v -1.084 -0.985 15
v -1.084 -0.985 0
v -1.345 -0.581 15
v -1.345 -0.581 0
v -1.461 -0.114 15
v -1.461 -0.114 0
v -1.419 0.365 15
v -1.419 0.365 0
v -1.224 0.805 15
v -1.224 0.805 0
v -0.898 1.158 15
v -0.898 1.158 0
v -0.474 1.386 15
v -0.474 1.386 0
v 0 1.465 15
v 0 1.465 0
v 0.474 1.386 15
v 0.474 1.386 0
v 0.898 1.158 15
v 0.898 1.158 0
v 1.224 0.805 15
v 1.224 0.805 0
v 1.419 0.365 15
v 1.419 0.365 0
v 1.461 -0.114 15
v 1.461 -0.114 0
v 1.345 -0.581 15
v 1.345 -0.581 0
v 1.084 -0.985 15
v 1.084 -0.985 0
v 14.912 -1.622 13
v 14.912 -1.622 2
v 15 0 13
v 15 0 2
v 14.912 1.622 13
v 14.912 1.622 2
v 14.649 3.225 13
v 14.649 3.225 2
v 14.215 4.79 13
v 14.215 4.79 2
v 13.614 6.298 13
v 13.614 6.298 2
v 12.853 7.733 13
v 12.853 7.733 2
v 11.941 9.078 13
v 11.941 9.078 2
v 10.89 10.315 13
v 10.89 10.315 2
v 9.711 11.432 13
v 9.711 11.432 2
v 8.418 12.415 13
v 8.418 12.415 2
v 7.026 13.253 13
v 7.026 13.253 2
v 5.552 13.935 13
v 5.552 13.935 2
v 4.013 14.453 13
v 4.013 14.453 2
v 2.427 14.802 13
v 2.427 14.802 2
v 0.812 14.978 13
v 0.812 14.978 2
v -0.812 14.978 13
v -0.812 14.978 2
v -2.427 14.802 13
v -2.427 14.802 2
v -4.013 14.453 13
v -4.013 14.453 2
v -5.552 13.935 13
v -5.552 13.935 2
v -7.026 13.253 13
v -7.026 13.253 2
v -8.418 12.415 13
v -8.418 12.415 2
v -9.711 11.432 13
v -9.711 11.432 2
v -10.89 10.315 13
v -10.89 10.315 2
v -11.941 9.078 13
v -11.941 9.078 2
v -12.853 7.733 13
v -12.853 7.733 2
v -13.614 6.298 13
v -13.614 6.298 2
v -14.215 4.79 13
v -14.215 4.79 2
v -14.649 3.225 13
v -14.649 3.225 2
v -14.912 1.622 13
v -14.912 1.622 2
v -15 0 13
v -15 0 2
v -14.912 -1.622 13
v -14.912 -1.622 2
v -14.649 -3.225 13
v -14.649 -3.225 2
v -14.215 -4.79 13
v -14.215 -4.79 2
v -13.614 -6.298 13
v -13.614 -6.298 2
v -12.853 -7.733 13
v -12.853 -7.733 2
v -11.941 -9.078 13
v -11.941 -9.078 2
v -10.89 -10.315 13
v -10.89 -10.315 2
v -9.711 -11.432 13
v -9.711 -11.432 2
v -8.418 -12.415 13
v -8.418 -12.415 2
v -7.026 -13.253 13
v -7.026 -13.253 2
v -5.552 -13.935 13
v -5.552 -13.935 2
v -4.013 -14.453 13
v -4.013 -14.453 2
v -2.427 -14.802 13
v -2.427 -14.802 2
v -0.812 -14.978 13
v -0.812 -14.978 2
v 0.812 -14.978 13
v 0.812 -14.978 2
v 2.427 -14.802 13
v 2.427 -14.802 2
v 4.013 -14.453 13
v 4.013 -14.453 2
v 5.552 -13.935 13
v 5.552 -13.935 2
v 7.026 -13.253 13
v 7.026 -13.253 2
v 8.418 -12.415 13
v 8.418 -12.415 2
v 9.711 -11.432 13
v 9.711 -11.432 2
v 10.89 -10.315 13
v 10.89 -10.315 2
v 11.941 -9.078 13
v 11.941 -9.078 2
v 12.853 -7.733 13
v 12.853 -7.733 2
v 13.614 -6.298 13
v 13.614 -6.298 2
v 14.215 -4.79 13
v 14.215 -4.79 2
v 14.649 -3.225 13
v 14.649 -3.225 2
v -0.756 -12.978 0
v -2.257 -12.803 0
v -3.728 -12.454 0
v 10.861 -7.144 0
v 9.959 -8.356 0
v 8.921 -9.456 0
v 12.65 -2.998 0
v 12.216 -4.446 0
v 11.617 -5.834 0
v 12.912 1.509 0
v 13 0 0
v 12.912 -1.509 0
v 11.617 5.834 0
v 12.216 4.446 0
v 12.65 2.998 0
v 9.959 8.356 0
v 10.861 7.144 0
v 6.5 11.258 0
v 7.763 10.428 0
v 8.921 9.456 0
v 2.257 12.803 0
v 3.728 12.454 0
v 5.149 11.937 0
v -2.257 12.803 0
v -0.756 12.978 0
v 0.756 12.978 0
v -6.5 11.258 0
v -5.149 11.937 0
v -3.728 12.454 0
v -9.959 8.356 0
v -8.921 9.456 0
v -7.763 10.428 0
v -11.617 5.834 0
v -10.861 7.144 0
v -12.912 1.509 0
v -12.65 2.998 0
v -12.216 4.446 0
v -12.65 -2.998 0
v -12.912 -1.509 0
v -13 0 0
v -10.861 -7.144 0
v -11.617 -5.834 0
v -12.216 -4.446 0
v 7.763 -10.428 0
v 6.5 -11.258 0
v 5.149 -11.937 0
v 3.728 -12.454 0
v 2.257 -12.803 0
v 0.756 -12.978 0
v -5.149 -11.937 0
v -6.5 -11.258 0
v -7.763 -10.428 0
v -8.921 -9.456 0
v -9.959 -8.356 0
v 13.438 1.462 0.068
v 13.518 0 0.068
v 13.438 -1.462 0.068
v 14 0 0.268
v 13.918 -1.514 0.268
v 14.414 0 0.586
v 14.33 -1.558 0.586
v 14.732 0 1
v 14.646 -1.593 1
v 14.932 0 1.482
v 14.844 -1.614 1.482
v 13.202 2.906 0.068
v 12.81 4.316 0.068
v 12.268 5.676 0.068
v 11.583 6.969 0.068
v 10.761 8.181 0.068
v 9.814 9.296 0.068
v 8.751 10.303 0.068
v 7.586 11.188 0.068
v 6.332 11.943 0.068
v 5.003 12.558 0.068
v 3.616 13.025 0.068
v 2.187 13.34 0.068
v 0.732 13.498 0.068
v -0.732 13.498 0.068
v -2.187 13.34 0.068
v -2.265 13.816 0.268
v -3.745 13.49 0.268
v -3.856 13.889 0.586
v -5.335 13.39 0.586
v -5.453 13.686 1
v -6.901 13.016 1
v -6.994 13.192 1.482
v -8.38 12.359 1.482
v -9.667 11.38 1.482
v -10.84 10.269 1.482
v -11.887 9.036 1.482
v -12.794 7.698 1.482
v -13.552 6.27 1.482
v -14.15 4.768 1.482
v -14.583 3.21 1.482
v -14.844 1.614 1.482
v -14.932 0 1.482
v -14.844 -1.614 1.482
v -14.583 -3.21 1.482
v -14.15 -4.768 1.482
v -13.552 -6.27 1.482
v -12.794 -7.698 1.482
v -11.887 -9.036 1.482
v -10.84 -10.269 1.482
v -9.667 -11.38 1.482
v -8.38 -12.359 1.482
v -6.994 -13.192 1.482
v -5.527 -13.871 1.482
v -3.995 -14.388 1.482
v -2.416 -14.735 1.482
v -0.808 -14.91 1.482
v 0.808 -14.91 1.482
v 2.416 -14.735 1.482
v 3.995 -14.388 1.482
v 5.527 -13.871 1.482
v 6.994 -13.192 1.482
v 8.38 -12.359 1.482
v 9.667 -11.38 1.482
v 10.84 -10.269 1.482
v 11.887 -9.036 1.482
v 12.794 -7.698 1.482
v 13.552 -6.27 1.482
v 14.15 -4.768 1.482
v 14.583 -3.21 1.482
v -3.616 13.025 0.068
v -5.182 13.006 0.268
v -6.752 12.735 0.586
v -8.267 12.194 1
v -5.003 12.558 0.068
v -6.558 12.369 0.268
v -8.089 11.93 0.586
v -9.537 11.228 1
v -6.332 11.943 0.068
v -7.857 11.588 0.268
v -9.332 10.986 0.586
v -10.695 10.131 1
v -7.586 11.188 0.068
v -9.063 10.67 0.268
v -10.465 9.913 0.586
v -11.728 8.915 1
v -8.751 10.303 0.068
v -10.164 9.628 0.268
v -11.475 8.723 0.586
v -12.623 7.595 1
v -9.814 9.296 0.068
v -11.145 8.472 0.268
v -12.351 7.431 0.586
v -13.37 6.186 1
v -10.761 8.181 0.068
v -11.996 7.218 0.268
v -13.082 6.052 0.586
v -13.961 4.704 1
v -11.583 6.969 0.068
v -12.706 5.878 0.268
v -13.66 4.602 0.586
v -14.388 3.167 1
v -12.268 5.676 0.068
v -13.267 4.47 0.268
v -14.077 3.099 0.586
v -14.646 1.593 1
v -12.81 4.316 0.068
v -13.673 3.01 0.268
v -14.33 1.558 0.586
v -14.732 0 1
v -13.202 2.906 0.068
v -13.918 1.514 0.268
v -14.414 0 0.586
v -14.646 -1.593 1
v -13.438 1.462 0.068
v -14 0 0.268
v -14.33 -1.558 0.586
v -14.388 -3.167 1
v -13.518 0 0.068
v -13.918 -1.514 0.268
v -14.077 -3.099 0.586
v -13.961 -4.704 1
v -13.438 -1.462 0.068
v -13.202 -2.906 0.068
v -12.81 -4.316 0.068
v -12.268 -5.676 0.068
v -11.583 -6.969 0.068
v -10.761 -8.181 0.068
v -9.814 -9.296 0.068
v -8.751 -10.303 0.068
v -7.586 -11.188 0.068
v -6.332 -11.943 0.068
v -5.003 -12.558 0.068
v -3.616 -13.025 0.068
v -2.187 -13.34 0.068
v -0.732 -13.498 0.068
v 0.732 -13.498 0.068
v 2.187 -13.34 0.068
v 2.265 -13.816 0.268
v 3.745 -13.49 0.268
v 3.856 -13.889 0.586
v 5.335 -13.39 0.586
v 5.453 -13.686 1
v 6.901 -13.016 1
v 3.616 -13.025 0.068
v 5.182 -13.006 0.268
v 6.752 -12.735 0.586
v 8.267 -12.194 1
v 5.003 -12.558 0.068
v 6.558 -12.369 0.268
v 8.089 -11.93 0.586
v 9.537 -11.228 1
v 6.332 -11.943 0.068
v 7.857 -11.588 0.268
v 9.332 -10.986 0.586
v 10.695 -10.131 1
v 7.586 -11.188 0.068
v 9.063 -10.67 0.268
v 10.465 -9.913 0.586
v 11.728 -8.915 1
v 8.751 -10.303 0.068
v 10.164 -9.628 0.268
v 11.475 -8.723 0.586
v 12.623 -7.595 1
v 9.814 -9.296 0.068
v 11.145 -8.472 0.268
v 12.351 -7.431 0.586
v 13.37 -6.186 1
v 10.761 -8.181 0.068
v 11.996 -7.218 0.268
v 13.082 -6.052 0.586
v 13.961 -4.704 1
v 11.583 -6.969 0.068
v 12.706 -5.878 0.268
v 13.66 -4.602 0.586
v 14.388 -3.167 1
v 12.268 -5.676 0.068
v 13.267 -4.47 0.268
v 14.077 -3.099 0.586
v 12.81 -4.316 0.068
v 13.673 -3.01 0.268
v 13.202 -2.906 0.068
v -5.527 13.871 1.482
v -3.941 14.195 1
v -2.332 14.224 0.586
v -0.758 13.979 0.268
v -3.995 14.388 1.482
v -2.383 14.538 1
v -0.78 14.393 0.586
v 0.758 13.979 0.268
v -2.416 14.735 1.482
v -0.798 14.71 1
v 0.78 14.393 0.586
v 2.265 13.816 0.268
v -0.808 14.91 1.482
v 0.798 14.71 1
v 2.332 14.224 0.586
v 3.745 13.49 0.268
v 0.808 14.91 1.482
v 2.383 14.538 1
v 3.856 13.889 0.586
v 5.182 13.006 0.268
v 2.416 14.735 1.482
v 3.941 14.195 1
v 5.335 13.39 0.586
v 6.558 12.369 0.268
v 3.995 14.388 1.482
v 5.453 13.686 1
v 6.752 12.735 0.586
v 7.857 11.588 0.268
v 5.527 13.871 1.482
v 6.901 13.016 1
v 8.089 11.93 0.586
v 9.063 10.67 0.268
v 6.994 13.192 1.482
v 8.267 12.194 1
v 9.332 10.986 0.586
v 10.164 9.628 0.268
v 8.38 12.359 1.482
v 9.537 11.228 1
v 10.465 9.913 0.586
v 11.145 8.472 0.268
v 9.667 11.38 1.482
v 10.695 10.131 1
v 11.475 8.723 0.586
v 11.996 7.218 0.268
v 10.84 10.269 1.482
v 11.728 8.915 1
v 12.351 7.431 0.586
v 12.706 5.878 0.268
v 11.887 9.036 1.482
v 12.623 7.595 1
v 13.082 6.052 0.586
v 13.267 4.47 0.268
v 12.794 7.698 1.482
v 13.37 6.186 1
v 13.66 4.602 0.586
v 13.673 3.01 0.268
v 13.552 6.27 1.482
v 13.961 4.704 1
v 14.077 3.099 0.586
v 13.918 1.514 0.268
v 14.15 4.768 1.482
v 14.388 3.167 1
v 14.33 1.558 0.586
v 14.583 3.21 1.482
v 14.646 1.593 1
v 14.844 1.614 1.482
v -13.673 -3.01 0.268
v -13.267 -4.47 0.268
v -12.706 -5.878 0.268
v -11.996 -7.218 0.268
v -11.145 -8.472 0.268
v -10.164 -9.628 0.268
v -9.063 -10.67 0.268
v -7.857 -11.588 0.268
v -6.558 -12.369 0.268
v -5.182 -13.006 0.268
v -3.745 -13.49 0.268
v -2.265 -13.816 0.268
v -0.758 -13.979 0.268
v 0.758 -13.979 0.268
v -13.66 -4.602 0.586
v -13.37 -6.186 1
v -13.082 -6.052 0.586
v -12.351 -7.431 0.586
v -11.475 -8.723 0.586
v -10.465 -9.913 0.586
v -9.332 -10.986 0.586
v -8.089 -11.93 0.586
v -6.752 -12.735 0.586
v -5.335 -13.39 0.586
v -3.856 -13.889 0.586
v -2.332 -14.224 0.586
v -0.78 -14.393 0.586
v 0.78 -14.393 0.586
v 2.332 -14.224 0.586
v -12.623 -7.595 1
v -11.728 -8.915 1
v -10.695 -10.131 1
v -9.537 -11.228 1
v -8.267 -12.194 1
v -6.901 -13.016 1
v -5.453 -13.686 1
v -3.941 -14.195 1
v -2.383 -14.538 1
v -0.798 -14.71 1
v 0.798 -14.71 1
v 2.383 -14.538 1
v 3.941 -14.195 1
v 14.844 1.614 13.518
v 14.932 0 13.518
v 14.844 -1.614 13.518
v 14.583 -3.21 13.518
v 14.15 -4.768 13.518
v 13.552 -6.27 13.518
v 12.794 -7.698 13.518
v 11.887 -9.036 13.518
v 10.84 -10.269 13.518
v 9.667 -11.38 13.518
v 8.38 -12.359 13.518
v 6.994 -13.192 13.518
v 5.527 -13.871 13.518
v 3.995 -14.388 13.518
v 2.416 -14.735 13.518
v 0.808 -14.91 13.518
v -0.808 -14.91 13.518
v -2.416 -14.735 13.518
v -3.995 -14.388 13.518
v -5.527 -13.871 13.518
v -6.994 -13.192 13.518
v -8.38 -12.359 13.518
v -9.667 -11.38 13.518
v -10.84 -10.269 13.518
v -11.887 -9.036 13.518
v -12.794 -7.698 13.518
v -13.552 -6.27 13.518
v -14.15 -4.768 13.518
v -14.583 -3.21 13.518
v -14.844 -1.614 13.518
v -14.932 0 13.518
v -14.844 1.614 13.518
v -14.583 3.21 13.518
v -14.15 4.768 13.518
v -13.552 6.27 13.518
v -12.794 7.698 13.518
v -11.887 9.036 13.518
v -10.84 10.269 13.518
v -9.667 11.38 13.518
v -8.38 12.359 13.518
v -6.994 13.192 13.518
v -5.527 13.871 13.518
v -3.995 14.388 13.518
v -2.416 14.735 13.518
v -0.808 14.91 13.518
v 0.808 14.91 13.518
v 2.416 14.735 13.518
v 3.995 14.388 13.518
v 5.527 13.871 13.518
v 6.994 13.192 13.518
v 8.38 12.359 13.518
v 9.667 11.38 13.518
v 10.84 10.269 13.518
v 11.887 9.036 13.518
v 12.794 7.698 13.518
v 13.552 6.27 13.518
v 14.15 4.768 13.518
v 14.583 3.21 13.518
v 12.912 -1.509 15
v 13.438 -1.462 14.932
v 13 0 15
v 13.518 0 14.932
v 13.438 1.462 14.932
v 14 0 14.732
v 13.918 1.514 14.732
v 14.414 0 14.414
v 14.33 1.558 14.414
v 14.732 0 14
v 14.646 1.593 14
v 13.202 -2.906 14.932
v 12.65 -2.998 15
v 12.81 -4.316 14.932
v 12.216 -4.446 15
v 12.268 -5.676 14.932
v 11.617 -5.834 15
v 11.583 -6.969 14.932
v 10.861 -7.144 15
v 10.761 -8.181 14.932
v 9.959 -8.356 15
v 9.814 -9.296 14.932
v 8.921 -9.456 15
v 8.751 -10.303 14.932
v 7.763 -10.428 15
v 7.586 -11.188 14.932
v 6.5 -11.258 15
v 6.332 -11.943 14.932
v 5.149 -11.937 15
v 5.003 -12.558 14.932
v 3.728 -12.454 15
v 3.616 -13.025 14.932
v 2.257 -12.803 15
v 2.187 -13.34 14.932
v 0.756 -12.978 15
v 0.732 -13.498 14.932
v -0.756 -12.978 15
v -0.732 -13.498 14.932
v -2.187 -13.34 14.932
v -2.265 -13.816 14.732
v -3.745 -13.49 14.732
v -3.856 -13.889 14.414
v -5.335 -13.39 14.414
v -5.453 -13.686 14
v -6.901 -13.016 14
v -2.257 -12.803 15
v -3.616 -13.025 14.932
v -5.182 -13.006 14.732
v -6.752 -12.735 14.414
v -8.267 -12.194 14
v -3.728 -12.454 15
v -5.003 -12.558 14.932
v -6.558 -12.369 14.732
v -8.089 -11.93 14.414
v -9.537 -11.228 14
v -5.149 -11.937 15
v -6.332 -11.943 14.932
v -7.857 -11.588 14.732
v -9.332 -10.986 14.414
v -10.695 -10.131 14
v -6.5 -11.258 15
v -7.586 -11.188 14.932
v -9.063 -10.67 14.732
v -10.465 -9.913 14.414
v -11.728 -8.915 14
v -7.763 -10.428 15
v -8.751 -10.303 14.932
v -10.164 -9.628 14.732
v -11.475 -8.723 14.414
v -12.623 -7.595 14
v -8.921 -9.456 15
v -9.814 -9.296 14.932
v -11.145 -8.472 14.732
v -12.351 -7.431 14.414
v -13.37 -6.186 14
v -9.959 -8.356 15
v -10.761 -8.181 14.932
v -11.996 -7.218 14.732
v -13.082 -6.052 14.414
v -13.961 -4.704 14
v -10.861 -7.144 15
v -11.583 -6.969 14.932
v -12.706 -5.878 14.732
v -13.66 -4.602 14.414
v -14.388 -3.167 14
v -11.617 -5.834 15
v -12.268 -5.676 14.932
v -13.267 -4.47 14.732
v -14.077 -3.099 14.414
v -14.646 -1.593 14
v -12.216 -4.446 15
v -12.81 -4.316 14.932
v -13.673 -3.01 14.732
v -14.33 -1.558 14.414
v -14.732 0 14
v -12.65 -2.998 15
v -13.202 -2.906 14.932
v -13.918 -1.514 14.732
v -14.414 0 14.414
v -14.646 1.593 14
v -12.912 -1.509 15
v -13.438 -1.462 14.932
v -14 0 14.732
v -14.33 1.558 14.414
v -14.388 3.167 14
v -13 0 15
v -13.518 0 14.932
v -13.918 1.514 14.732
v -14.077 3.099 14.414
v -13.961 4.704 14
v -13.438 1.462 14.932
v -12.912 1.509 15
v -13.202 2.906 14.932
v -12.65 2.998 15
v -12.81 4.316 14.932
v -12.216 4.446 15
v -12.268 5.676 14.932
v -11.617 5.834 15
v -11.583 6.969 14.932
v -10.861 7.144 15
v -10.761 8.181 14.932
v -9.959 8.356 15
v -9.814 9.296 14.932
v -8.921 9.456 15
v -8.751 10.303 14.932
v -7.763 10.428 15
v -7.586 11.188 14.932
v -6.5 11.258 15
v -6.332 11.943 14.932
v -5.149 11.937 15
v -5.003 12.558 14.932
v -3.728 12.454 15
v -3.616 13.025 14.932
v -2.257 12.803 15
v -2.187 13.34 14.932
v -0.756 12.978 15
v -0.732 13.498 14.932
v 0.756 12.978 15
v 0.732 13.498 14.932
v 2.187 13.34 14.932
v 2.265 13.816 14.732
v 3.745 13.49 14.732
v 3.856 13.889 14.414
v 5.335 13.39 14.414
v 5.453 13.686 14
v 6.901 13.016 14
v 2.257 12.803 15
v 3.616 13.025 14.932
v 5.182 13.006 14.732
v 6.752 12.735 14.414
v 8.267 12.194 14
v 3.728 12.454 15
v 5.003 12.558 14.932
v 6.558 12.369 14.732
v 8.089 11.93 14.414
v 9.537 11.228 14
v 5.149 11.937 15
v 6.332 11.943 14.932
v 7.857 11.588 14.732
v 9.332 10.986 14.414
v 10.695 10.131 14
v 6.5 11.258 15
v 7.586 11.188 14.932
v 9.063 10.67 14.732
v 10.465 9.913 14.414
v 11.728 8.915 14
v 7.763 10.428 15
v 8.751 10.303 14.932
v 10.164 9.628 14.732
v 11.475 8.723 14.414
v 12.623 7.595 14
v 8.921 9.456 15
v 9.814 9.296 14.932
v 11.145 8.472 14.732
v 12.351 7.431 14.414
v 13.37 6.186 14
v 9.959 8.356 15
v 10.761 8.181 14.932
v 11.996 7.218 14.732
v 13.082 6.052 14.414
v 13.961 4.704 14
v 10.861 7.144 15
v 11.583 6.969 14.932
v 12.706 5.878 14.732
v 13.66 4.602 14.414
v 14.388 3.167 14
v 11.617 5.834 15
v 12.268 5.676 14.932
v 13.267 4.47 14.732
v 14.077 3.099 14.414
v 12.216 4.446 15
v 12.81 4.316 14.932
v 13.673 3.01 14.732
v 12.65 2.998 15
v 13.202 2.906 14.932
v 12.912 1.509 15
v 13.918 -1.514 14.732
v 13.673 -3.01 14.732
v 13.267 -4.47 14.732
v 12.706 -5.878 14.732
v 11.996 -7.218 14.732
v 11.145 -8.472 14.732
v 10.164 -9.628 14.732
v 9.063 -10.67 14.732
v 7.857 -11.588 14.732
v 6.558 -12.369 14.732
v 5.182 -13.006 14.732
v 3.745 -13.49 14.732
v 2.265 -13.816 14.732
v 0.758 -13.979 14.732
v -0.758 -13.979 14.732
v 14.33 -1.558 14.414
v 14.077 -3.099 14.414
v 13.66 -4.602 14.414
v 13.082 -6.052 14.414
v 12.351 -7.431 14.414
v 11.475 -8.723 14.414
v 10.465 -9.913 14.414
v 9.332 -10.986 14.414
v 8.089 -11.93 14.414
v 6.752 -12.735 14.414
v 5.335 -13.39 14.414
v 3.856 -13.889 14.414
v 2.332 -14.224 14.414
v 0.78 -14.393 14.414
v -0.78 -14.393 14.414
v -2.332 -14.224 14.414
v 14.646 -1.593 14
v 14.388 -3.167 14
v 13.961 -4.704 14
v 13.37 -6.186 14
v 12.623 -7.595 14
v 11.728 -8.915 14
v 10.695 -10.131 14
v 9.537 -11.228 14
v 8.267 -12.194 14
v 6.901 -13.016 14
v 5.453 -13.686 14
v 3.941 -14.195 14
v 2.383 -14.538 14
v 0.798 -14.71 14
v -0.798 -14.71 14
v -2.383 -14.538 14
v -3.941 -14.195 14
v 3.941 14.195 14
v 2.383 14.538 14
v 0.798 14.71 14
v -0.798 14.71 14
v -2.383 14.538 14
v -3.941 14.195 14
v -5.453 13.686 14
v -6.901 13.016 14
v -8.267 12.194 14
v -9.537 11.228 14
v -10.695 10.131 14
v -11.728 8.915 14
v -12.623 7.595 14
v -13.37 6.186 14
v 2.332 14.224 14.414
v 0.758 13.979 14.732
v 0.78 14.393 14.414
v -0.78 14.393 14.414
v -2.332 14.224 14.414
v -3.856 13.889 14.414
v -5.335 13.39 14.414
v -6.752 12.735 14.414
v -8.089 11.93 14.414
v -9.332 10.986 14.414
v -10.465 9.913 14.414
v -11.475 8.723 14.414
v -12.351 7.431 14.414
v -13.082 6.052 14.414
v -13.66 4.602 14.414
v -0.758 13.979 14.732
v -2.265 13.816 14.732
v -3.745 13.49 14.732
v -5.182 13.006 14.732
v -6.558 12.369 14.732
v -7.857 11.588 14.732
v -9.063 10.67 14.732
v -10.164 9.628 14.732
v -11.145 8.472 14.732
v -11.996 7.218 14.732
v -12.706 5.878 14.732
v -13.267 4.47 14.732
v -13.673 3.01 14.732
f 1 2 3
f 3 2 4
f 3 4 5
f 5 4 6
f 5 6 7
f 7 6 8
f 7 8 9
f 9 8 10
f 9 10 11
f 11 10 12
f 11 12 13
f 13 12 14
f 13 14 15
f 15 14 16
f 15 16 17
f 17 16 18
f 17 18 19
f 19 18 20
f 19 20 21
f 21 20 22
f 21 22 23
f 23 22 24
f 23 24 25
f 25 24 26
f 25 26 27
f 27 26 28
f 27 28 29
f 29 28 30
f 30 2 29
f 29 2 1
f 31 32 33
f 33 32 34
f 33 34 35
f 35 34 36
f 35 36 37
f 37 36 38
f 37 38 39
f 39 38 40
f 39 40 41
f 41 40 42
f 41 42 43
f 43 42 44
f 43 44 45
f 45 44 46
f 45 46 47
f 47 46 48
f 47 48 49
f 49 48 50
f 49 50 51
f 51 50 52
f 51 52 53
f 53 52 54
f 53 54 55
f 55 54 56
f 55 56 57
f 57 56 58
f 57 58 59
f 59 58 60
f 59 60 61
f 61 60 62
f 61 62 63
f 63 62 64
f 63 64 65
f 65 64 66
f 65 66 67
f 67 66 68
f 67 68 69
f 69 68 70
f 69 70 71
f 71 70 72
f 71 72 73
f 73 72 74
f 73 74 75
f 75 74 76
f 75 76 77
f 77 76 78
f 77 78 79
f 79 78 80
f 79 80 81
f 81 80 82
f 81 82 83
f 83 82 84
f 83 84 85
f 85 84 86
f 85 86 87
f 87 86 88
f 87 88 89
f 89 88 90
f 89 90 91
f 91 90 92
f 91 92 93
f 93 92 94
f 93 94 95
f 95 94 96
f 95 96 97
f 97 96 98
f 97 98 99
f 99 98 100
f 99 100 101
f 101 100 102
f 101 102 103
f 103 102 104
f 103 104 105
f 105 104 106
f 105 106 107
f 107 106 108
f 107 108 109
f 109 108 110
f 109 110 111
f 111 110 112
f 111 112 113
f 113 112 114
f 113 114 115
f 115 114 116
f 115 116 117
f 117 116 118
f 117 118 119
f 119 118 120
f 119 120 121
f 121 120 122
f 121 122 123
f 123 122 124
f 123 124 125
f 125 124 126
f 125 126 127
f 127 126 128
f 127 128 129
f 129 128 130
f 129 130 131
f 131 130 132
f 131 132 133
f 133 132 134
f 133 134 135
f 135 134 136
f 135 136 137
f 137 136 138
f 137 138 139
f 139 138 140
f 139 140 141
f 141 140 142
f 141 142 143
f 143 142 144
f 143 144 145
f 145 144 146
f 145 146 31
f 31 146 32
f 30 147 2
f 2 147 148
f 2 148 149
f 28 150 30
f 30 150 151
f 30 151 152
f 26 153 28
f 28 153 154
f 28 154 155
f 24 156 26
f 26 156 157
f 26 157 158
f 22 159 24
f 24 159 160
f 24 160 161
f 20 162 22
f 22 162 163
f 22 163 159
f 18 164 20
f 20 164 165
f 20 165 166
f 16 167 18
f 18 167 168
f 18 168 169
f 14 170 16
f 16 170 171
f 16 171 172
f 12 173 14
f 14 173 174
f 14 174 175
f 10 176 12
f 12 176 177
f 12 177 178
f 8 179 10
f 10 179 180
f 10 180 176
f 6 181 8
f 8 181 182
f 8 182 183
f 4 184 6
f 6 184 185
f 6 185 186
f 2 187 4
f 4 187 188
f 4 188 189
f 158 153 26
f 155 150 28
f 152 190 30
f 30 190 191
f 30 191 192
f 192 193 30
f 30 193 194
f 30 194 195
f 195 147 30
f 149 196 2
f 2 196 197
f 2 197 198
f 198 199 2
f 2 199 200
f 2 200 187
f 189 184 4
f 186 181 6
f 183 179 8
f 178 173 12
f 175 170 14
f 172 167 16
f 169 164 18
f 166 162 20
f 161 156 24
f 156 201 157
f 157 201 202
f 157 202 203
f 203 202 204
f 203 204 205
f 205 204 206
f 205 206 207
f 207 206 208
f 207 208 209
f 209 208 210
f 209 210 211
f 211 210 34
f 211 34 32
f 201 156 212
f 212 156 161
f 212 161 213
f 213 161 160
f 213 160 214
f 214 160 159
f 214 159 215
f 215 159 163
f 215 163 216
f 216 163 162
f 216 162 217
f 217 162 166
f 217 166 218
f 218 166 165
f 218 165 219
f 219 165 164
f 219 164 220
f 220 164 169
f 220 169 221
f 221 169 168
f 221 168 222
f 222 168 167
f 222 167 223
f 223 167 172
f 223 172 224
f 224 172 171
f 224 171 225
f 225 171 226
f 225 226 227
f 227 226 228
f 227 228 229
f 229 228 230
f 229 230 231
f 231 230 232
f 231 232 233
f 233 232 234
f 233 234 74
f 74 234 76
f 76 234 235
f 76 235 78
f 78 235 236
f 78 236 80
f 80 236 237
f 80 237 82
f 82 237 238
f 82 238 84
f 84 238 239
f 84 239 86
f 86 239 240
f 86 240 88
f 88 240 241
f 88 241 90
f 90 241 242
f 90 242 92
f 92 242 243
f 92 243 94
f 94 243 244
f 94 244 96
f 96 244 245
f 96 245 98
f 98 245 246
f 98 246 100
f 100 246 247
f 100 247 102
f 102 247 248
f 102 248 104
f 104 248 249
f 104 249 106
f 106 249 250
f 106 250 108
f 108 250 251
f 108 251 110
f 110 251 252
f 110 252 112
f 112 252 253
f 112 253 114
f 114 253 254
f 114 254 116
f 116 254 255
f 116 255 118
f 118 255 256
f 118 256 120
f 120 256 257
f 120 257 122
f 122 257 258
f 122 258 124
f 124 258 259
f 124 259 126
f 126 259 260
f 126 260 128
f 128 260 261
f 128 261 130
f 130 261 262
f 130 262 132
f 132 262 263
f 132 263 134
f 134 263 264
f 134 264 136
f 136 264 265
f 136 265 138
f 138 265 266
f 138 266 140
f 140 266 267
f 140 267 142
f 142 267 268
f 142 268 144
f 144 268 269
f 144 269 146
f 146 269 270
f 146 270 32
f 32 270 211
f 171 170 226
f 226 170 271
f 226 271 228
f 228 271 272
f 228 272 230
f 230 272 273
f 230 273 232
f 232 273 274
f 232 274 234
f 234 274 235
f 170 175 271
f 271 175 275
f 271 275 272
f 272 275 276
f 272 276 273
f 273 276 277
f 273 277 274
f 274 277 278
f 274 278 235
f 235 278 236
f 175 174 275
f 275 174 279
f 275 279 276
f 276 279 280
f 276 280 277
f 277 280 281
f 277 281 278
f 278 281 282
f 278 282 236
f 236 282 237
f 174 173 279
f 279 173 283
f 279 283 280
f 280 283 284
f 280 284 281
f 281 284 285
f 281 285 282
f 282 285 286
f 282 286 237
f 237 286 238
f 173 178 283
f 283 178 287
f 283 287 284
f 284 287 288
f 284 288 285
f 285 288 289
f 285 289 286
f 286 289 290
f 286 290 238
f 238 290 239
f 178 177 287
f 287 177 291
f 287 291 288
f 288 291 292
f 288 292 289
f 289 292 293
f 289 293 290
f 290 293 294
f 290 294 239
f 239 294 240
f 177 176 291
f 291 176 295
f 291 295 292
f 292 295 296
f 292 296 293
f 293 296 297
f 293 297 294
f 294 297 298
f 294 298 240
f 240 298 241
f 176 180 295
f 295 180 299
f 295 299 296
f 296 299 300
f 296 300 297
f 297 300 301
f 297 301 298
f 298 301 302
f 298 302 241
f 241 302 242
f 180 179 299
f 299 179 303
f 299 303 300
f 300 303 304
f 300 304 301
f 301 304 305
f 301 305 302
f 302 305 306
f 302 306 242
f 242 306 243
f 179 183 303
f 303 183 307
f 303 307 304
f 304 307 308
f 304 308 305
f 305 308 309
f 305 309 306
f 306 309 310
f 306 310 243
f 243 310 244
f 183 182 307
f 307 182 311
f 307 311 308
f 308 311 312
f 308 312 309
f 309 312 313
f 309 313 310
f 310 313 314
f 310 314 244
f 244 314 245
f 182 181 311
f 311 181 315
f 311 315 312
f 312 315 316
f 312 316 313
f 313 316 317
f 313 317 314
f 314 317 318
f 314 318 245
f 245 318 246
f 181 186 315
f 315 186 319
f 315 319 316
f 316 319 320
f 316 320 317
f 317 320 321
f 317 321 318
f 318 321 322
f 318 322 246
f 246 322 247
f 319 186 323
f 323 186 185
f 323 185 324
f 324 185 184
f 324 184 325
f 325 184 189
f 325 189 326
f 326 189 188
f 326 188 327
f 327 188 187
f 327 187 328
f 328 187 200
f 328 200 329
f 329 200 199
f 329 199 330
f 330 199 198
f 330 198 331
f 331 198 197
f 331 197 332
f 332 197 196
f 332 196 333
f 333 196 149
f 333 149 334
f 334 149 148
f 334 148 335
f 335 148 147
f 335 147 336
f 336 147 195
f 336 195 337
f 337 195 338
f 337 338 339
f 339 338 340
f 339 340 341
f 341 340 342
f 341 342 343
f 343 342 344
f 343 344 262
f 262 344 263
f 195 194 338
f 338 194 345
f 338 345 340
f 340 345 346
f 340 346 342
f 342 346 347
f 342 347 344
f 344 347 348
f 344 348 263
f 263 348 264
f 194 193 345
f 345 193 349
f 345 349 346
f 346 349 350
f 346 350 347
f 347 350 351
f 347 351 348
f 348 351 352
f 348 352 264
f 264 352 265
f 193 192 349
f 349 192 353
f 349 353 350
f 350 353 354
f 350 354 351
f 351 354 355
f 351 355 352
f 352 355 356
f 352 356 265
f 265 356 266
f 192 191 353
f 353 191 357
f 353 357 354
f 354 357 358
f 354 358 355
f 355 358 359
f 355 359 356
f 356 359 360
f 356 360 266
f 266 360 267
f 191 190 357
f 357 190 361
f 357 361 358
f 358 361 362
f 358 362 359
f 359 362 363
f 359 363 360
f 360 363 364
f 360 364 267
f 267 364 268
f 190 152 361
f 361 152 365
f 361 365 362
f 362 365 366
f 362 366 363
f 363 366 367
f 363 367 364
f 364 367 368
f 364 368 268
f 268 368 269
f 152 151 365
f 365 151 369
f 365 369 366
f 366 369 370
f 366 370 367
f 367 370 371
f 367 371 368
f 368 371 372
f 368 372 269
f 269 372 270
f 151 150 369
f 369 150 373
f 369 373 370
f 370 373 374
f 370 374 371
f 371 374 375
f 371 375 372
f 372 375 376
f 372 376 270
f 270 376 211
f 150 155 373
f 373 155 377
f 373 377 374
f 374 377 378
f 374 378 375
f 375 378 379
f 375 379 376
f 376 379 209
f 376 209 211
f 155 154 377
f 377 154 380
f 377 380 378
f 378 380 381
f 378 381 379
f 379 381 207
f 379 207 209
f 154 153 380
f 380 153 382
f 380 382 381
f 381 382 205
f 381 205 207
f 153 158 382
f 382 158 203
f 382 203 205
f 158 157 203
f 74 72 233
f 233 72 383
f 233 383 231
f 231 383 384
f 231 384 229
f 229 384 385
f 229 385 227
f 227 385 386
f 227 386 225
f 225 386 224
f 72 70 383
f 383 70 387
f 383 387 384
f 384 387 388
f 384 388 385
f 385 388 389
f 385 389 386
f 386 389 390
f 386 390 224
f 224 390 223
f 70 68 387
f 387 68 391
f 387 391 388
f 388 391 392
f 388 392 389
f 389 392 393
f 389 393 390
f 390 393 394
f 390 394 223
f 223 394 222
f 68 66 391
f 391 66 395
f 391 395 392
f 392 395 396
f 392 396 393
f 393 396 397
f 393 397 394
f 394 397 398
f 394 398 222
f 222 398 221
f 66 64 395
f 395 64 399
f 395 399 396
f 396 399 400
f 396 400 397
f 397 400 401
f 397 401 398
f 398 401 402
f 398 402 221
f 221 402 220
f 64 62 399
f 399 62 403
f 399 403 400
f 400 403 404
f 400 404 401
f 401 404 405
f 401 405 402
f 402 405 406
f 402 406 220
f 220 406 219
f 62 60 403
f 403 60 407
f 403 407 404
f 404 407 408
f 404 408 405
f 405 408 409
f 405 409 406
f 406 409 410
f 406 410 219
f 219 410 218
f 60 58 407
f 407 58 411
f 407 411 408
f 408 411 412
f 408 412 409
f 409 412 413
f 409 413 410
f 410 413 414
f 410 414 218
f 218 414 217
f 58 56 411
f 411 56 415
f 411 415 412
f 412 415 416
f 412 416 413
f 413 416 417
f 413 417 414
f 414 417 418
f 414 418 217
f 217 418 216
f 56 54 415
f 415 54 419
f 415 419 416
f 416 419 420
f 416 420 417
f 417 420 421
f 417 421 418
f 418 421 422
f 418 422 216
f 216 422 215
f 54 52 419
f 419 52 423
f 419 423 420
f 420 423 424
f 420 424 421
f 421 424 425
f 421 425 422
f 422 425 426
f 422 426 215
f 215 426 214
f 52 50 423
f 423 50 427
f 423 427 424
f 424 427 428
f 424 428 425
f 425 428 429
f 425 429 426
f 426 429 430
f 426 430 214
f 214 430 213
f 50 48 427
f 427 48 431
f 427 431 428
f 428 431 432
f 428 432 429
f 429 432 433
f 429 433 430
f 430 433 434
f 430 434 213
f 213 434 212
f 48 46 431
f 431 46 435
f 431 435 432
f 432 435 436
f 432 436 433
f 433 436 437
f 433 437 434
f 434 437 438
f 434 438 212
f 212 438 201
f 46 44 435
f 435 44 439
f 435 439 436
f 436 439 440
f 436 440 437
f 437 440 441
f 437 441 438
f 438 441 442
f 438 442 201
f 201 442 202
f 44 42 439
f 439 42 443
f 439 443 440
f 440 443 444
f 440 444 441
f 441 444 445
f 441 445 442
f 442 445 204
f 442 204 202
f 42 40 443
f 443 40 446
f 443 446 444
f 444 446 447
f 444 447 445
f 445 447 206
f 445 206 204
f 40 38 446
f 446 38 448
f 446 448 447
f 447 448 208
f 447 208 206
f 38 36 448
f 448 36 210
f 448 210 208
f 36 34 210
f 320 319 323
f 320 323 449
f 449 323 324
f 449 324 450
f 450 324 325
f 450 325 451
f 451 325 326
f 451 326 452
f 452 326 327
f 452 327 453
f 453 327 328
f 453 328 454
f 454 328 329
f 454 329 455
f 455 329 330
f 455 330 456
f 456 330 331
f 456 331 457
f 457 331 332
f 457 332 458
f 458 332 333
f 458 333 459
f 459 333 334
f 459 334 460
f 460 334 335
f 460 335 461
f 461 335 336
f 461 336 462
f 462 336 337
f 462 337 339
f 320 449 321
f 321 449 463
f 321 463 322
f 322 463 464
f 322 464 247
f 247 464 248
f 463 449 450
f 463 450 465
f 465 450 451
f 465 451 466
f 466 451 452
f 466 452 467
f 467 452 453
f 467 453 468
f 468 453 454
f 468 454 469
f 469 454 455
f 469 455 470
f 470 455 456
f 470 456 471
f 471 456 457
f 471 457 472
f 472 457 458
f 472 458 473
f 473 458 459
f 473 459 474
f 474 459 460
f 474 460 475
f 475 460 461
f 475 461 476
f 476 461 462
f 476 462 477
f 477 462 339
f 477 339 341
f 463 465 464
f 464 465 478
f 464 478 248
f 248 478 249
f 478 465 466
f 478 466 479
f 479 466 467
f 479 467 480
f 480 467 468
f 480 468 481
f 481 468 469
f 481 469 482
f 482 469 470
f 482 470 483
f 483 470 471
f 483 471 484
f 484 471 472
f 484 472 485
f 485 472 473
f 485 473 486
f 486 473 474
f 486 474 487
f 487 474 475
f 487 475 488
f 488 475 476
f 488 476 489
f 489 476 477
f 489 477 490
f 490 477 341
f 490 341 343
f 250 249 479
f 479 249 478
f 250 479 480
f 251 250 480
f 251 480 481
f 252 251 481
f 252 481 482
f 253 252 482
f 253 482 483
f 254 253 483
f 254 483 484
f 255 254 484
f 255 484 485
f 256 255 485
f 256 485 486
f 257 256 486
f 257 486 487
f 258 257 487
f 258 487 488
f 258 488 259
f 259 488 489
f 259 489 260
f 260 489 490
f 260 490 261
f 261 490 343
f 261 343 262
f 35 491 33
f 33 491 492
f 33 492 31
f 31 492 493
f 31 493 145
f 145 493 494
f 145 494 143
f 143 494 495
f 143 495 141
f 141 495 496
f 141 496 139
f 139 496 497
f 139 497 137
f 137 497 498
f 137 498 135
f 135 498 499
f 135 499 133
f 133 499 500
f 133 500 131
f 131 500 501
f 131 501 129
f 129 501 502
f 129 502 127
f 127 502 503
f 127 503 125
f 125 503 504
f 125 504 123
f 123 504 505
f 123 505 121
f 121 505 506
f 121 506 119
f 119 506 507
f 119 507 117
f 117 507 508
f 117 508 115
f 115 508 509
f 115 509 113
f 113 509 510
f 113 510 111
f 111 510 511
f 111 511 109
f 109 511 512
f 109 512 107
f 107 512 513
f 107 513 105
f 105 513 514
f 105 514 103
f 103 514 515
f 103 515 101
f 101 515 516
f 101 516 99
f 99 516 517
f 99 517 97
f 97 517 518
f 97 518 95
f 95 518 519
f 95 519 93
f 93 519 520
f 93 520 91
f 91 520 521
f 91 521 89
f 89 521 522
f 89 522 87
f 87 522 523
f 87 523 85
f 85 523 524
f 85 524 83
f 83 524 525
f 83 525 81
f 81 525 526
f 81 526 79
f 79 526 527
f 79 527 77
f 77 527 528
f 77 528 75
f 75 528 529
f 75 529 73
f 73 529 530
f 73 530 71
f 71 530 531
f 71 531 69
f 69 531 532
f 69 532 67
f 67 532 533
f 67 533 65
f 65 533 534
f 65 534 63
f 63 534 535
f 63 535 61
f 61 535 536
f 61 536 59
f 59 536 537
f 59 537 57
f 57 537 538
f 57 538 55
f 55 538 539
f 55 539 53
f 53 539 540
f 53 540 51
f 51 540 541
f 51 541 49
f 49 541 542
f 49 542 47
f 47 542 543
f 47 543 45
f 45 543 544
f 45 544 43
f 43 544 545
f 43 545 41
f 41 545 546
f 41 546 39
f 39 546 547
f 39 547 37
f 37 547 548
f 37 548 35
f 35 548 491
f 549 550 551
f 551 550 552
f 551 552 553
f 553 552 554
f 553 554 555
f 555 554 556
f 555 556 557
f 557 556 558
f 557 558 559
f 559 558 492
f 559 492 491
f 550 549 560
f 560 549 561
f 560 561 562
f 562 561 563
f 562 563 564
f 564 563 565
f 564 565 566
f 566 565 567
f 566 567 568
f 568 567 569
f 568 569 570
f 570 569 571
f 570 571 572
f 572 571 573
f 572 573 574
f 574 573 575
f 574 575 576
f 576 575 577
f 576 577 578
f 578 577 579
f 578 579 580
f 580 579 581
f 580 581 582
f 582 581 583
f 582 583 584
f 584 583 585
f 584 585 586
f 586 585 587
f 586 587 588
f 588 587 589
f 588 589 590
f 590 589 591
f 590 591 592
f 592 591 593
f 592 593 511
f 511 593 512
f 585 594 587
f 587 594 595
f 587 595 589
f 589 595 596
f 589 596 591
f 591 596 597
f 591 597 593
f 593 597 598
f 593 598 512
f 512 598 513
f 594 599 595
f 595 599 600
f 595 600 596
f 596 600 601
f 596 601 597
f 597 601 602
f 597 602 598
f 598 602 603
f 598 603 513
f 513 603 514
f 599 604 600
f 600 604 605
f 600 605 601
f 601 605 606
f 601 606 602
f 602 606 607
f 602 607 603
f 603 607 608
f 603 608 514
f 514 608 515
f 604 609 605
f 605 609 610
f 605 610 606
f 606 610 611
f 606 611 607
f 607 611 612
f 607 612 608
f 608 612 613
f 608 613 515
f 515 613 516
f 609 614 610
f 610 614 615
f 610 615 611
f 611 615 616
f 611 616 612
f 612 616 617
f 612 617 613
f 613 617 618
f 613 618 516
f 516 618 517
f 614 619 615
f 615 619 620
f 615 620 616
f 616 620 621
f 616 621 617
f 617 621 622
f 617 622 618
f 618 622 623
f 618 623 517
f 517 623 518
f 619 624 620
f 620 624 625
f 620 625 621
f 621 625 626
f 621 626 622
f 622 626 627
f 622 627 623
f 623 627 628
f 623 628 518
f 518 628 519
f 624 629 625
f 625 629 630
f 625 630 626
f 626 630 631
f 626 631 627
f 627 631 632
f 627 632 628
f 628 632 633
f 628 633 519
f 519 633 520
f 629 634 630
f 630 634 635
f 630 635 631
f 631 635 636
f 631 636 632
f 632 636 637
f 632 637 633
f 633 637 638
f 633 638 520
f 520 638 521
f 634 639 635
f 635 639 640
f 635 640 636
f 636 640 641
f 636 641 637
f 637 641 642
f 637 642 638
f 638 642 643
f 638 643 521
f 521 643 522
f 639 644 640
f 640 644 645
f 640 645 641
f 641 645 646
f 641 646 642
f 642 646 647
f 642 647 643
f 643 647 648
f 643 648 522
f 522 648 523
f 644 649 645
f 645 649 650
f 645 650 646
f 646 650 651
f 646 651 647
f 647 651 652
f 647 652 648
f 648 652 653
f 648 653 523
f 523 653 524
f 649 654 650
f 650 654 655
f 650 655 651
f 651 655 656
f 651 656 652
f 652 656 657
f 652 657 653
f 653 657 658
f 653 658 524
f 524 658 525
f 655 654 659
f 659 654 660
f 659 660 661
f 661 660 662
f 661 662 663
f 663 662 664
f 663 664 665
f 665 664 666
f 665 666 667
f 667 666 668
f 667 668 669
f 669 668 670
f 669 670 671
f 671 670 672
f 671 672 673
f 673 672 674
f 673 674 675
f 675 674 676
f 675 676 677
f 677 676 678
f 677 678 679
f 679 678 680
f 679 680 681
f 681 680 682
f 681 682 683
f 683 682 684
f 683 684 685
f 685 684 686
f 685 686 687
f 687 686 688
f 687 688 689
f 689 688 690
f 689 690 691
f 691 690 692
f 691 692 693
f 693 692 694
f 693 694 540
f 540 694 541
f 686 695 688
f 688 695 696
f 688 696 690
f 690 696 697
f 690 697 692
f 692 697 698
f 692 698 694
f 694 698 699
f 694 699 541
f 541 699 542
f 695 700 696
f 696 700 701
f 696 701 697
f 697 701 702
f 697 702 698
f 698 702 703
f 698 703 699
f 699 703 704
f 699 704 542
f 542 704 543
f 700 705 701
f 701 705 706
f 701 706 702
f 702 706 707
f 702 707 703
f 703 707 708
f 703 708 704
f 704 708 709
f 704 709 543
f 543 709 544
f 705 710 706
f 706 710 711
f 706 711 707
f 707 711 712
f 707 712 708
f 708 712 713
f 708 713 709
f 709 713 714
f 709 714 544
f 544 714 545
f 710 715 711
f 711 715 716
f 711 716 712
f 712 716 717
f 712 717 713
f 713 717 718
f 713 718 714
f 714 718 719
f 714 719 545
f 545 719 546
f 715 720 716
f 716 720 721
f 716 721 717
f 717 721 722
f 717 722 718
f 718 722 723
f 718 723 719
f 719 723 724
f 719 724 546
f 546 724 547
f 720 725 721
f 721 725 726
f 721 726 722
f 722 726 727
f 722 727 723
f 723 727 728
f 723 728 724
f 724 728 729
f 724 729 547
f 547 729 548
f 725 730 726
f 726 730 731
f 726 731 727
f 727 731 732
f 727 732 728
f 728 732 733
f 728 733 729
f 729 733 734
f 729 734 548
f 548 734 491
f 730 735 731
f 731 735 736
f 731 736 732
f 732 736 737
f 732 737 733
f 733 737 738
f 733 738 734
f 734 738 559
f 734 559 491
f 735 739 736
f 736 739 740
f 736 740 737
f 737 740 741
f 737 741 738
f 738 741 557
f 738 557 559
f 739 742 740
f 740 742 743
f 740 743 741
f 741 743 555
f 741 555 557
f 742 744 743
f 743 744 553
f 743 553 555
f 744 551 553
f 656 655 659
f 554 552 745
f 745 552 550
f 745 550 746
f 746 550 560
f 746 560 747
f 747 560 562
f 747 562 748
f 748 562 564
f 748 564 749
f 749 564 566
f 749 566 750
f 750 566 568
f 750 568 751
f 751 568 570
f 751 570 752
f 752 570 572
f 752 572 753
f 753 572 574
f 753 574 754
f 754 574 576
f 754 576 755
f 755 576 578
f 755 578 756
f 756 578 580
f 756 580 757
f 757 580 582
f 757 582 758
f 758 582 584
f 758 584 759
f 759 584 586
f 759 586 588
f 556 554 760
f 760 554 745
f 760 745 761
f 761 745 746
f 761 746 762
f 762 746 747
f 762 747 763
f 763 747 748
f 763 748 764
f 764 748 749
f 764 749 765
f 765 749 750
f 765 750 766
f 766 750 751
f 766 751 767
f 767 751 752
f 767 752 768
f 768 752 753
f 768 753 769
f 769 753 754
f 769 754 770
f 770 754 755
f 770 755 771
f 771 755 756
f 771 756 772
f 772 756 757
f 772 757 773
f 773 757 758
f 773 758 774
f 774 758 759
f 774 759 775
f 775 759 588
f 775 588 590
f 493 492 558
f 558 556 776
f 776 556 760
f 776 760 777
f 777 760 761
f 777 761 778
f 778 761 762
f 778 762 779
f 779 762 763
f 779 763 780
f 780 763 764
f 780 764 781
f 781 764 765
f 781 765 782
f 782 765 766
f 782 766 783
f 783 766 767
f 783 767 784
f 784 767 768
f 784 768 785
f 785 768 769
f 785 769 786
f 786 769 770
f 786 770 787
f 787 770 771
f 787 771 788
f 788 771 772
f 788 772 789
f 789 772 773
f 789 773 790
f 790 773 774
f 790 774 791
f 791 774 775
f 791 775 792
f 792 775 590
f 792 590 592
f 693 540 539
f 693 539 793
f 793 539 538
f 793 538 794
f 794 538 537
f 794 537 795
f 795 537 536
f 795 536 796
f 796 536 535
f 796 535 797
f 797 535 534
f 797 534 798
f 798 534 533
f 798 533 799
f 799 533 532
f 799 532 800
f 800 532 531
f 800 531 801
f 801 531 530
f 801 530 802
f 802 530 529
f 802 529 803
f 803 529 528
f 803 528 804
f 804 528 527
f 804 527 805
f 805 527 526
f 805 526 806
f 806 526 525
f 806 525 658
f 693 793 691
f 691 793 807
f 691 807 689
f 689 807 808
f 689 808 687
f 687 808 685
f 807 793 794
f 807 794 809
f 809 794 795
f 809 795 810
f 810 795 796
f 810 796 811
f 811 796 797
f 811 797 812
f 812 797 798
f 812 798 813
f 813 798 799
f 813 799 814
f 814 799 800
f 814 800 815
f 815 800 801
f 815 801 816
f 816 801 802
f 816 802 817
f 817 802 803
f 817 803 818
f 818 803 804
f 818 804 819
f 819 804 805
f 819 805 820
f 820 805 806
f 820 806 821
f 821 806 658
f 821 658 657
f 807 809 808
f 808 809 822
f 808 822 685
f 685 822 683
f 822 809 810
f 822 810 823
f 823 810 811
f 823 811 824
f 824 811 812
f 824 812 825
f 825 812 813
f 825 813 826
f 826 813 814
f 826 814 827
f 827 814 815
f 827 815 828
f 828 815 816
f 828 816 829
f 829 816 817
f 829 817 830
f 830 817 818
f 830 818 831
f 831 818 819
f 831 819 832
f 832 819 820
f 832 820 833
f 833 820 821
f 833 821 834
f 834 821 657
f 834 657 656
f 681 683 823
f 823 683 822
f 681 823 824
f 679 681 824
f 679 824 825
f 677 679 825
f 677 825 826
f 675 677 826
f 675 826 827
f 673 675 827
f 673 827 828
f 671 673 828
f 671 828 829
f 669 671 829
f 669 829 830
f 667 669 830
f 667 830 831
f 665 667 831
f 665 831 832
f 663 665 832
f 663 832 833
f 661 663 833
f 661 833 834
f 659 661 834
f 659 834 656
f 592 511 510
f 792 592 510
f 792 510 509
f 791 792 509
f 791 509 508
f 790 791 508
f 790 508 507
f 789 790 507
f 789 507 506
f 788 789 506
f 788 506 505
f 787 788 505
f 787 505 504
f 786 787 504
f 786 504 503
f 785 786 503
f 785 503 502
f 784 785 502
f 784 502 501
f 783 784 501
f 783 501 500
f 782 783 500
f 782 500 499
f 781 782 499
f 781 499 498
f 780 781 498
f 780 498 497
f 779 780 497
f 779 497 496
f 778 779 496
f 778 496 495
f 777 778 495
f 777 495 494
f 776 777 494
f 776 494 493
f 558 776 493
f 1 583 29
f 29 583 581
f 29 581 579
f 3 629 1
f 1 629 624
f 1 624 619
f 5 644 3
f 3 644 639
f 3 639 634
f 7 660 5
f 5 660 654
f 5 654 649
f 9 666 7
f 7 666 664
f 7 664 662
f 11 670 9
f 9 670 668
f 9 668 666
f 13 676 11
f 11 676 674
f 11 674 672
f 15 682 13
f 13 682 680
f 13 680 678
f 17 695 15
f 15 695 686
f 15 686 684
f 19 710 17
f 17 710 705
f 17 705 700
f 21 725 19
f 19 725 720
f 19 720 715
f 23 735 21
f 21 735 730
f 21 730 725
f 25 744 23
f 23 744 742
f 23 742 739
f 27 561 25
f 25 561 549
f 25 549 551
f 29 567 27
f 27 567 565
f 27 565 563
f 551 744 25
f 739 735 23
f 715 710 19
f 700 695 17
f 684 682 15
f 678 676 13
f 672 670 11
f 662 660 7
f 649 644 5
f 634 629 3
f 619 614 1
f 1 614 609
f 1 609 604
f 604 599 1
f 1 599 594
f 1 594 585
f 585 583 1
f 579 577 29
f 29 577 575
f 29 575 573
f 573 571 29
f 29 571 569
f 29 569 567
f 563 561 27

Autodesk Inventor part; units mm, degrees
ref_plane "YZ Plane" through (0, 0, 0) normal (1, 0, 0) x (0, 1, 0)
ref_plane "XZ Plane" through (0, 0, 0) normal (0, 1, 0) x (-1, 0, 0)
ref_plane "XY Plane" through (0, 0, 0) normal (0, 0, 1) x (1, 0, 0)
sketch "Sketch1" plane through (0, 0, 0) normal (0, 0, 1) x (1, 0, 0)
  circle A0 centre (0, 0) radius 15
  arc A1 (1.0844, -0.985) -> (-1.0844, -0.985) centre (0, 0) ccw
  line L0 (1.0844, -0.985) -> (-1.0844, -0.985)
  dimension "d0" = 30
  dimension "d1" = 2.93
  dimension "d2" = 2.45
extrude "Extrusion1" add sketch "Sketch1" along normal blind 15
fillet "Fillet1" radius 2 2 edges at (-15, 0, 15) (-15, 0, 0)
